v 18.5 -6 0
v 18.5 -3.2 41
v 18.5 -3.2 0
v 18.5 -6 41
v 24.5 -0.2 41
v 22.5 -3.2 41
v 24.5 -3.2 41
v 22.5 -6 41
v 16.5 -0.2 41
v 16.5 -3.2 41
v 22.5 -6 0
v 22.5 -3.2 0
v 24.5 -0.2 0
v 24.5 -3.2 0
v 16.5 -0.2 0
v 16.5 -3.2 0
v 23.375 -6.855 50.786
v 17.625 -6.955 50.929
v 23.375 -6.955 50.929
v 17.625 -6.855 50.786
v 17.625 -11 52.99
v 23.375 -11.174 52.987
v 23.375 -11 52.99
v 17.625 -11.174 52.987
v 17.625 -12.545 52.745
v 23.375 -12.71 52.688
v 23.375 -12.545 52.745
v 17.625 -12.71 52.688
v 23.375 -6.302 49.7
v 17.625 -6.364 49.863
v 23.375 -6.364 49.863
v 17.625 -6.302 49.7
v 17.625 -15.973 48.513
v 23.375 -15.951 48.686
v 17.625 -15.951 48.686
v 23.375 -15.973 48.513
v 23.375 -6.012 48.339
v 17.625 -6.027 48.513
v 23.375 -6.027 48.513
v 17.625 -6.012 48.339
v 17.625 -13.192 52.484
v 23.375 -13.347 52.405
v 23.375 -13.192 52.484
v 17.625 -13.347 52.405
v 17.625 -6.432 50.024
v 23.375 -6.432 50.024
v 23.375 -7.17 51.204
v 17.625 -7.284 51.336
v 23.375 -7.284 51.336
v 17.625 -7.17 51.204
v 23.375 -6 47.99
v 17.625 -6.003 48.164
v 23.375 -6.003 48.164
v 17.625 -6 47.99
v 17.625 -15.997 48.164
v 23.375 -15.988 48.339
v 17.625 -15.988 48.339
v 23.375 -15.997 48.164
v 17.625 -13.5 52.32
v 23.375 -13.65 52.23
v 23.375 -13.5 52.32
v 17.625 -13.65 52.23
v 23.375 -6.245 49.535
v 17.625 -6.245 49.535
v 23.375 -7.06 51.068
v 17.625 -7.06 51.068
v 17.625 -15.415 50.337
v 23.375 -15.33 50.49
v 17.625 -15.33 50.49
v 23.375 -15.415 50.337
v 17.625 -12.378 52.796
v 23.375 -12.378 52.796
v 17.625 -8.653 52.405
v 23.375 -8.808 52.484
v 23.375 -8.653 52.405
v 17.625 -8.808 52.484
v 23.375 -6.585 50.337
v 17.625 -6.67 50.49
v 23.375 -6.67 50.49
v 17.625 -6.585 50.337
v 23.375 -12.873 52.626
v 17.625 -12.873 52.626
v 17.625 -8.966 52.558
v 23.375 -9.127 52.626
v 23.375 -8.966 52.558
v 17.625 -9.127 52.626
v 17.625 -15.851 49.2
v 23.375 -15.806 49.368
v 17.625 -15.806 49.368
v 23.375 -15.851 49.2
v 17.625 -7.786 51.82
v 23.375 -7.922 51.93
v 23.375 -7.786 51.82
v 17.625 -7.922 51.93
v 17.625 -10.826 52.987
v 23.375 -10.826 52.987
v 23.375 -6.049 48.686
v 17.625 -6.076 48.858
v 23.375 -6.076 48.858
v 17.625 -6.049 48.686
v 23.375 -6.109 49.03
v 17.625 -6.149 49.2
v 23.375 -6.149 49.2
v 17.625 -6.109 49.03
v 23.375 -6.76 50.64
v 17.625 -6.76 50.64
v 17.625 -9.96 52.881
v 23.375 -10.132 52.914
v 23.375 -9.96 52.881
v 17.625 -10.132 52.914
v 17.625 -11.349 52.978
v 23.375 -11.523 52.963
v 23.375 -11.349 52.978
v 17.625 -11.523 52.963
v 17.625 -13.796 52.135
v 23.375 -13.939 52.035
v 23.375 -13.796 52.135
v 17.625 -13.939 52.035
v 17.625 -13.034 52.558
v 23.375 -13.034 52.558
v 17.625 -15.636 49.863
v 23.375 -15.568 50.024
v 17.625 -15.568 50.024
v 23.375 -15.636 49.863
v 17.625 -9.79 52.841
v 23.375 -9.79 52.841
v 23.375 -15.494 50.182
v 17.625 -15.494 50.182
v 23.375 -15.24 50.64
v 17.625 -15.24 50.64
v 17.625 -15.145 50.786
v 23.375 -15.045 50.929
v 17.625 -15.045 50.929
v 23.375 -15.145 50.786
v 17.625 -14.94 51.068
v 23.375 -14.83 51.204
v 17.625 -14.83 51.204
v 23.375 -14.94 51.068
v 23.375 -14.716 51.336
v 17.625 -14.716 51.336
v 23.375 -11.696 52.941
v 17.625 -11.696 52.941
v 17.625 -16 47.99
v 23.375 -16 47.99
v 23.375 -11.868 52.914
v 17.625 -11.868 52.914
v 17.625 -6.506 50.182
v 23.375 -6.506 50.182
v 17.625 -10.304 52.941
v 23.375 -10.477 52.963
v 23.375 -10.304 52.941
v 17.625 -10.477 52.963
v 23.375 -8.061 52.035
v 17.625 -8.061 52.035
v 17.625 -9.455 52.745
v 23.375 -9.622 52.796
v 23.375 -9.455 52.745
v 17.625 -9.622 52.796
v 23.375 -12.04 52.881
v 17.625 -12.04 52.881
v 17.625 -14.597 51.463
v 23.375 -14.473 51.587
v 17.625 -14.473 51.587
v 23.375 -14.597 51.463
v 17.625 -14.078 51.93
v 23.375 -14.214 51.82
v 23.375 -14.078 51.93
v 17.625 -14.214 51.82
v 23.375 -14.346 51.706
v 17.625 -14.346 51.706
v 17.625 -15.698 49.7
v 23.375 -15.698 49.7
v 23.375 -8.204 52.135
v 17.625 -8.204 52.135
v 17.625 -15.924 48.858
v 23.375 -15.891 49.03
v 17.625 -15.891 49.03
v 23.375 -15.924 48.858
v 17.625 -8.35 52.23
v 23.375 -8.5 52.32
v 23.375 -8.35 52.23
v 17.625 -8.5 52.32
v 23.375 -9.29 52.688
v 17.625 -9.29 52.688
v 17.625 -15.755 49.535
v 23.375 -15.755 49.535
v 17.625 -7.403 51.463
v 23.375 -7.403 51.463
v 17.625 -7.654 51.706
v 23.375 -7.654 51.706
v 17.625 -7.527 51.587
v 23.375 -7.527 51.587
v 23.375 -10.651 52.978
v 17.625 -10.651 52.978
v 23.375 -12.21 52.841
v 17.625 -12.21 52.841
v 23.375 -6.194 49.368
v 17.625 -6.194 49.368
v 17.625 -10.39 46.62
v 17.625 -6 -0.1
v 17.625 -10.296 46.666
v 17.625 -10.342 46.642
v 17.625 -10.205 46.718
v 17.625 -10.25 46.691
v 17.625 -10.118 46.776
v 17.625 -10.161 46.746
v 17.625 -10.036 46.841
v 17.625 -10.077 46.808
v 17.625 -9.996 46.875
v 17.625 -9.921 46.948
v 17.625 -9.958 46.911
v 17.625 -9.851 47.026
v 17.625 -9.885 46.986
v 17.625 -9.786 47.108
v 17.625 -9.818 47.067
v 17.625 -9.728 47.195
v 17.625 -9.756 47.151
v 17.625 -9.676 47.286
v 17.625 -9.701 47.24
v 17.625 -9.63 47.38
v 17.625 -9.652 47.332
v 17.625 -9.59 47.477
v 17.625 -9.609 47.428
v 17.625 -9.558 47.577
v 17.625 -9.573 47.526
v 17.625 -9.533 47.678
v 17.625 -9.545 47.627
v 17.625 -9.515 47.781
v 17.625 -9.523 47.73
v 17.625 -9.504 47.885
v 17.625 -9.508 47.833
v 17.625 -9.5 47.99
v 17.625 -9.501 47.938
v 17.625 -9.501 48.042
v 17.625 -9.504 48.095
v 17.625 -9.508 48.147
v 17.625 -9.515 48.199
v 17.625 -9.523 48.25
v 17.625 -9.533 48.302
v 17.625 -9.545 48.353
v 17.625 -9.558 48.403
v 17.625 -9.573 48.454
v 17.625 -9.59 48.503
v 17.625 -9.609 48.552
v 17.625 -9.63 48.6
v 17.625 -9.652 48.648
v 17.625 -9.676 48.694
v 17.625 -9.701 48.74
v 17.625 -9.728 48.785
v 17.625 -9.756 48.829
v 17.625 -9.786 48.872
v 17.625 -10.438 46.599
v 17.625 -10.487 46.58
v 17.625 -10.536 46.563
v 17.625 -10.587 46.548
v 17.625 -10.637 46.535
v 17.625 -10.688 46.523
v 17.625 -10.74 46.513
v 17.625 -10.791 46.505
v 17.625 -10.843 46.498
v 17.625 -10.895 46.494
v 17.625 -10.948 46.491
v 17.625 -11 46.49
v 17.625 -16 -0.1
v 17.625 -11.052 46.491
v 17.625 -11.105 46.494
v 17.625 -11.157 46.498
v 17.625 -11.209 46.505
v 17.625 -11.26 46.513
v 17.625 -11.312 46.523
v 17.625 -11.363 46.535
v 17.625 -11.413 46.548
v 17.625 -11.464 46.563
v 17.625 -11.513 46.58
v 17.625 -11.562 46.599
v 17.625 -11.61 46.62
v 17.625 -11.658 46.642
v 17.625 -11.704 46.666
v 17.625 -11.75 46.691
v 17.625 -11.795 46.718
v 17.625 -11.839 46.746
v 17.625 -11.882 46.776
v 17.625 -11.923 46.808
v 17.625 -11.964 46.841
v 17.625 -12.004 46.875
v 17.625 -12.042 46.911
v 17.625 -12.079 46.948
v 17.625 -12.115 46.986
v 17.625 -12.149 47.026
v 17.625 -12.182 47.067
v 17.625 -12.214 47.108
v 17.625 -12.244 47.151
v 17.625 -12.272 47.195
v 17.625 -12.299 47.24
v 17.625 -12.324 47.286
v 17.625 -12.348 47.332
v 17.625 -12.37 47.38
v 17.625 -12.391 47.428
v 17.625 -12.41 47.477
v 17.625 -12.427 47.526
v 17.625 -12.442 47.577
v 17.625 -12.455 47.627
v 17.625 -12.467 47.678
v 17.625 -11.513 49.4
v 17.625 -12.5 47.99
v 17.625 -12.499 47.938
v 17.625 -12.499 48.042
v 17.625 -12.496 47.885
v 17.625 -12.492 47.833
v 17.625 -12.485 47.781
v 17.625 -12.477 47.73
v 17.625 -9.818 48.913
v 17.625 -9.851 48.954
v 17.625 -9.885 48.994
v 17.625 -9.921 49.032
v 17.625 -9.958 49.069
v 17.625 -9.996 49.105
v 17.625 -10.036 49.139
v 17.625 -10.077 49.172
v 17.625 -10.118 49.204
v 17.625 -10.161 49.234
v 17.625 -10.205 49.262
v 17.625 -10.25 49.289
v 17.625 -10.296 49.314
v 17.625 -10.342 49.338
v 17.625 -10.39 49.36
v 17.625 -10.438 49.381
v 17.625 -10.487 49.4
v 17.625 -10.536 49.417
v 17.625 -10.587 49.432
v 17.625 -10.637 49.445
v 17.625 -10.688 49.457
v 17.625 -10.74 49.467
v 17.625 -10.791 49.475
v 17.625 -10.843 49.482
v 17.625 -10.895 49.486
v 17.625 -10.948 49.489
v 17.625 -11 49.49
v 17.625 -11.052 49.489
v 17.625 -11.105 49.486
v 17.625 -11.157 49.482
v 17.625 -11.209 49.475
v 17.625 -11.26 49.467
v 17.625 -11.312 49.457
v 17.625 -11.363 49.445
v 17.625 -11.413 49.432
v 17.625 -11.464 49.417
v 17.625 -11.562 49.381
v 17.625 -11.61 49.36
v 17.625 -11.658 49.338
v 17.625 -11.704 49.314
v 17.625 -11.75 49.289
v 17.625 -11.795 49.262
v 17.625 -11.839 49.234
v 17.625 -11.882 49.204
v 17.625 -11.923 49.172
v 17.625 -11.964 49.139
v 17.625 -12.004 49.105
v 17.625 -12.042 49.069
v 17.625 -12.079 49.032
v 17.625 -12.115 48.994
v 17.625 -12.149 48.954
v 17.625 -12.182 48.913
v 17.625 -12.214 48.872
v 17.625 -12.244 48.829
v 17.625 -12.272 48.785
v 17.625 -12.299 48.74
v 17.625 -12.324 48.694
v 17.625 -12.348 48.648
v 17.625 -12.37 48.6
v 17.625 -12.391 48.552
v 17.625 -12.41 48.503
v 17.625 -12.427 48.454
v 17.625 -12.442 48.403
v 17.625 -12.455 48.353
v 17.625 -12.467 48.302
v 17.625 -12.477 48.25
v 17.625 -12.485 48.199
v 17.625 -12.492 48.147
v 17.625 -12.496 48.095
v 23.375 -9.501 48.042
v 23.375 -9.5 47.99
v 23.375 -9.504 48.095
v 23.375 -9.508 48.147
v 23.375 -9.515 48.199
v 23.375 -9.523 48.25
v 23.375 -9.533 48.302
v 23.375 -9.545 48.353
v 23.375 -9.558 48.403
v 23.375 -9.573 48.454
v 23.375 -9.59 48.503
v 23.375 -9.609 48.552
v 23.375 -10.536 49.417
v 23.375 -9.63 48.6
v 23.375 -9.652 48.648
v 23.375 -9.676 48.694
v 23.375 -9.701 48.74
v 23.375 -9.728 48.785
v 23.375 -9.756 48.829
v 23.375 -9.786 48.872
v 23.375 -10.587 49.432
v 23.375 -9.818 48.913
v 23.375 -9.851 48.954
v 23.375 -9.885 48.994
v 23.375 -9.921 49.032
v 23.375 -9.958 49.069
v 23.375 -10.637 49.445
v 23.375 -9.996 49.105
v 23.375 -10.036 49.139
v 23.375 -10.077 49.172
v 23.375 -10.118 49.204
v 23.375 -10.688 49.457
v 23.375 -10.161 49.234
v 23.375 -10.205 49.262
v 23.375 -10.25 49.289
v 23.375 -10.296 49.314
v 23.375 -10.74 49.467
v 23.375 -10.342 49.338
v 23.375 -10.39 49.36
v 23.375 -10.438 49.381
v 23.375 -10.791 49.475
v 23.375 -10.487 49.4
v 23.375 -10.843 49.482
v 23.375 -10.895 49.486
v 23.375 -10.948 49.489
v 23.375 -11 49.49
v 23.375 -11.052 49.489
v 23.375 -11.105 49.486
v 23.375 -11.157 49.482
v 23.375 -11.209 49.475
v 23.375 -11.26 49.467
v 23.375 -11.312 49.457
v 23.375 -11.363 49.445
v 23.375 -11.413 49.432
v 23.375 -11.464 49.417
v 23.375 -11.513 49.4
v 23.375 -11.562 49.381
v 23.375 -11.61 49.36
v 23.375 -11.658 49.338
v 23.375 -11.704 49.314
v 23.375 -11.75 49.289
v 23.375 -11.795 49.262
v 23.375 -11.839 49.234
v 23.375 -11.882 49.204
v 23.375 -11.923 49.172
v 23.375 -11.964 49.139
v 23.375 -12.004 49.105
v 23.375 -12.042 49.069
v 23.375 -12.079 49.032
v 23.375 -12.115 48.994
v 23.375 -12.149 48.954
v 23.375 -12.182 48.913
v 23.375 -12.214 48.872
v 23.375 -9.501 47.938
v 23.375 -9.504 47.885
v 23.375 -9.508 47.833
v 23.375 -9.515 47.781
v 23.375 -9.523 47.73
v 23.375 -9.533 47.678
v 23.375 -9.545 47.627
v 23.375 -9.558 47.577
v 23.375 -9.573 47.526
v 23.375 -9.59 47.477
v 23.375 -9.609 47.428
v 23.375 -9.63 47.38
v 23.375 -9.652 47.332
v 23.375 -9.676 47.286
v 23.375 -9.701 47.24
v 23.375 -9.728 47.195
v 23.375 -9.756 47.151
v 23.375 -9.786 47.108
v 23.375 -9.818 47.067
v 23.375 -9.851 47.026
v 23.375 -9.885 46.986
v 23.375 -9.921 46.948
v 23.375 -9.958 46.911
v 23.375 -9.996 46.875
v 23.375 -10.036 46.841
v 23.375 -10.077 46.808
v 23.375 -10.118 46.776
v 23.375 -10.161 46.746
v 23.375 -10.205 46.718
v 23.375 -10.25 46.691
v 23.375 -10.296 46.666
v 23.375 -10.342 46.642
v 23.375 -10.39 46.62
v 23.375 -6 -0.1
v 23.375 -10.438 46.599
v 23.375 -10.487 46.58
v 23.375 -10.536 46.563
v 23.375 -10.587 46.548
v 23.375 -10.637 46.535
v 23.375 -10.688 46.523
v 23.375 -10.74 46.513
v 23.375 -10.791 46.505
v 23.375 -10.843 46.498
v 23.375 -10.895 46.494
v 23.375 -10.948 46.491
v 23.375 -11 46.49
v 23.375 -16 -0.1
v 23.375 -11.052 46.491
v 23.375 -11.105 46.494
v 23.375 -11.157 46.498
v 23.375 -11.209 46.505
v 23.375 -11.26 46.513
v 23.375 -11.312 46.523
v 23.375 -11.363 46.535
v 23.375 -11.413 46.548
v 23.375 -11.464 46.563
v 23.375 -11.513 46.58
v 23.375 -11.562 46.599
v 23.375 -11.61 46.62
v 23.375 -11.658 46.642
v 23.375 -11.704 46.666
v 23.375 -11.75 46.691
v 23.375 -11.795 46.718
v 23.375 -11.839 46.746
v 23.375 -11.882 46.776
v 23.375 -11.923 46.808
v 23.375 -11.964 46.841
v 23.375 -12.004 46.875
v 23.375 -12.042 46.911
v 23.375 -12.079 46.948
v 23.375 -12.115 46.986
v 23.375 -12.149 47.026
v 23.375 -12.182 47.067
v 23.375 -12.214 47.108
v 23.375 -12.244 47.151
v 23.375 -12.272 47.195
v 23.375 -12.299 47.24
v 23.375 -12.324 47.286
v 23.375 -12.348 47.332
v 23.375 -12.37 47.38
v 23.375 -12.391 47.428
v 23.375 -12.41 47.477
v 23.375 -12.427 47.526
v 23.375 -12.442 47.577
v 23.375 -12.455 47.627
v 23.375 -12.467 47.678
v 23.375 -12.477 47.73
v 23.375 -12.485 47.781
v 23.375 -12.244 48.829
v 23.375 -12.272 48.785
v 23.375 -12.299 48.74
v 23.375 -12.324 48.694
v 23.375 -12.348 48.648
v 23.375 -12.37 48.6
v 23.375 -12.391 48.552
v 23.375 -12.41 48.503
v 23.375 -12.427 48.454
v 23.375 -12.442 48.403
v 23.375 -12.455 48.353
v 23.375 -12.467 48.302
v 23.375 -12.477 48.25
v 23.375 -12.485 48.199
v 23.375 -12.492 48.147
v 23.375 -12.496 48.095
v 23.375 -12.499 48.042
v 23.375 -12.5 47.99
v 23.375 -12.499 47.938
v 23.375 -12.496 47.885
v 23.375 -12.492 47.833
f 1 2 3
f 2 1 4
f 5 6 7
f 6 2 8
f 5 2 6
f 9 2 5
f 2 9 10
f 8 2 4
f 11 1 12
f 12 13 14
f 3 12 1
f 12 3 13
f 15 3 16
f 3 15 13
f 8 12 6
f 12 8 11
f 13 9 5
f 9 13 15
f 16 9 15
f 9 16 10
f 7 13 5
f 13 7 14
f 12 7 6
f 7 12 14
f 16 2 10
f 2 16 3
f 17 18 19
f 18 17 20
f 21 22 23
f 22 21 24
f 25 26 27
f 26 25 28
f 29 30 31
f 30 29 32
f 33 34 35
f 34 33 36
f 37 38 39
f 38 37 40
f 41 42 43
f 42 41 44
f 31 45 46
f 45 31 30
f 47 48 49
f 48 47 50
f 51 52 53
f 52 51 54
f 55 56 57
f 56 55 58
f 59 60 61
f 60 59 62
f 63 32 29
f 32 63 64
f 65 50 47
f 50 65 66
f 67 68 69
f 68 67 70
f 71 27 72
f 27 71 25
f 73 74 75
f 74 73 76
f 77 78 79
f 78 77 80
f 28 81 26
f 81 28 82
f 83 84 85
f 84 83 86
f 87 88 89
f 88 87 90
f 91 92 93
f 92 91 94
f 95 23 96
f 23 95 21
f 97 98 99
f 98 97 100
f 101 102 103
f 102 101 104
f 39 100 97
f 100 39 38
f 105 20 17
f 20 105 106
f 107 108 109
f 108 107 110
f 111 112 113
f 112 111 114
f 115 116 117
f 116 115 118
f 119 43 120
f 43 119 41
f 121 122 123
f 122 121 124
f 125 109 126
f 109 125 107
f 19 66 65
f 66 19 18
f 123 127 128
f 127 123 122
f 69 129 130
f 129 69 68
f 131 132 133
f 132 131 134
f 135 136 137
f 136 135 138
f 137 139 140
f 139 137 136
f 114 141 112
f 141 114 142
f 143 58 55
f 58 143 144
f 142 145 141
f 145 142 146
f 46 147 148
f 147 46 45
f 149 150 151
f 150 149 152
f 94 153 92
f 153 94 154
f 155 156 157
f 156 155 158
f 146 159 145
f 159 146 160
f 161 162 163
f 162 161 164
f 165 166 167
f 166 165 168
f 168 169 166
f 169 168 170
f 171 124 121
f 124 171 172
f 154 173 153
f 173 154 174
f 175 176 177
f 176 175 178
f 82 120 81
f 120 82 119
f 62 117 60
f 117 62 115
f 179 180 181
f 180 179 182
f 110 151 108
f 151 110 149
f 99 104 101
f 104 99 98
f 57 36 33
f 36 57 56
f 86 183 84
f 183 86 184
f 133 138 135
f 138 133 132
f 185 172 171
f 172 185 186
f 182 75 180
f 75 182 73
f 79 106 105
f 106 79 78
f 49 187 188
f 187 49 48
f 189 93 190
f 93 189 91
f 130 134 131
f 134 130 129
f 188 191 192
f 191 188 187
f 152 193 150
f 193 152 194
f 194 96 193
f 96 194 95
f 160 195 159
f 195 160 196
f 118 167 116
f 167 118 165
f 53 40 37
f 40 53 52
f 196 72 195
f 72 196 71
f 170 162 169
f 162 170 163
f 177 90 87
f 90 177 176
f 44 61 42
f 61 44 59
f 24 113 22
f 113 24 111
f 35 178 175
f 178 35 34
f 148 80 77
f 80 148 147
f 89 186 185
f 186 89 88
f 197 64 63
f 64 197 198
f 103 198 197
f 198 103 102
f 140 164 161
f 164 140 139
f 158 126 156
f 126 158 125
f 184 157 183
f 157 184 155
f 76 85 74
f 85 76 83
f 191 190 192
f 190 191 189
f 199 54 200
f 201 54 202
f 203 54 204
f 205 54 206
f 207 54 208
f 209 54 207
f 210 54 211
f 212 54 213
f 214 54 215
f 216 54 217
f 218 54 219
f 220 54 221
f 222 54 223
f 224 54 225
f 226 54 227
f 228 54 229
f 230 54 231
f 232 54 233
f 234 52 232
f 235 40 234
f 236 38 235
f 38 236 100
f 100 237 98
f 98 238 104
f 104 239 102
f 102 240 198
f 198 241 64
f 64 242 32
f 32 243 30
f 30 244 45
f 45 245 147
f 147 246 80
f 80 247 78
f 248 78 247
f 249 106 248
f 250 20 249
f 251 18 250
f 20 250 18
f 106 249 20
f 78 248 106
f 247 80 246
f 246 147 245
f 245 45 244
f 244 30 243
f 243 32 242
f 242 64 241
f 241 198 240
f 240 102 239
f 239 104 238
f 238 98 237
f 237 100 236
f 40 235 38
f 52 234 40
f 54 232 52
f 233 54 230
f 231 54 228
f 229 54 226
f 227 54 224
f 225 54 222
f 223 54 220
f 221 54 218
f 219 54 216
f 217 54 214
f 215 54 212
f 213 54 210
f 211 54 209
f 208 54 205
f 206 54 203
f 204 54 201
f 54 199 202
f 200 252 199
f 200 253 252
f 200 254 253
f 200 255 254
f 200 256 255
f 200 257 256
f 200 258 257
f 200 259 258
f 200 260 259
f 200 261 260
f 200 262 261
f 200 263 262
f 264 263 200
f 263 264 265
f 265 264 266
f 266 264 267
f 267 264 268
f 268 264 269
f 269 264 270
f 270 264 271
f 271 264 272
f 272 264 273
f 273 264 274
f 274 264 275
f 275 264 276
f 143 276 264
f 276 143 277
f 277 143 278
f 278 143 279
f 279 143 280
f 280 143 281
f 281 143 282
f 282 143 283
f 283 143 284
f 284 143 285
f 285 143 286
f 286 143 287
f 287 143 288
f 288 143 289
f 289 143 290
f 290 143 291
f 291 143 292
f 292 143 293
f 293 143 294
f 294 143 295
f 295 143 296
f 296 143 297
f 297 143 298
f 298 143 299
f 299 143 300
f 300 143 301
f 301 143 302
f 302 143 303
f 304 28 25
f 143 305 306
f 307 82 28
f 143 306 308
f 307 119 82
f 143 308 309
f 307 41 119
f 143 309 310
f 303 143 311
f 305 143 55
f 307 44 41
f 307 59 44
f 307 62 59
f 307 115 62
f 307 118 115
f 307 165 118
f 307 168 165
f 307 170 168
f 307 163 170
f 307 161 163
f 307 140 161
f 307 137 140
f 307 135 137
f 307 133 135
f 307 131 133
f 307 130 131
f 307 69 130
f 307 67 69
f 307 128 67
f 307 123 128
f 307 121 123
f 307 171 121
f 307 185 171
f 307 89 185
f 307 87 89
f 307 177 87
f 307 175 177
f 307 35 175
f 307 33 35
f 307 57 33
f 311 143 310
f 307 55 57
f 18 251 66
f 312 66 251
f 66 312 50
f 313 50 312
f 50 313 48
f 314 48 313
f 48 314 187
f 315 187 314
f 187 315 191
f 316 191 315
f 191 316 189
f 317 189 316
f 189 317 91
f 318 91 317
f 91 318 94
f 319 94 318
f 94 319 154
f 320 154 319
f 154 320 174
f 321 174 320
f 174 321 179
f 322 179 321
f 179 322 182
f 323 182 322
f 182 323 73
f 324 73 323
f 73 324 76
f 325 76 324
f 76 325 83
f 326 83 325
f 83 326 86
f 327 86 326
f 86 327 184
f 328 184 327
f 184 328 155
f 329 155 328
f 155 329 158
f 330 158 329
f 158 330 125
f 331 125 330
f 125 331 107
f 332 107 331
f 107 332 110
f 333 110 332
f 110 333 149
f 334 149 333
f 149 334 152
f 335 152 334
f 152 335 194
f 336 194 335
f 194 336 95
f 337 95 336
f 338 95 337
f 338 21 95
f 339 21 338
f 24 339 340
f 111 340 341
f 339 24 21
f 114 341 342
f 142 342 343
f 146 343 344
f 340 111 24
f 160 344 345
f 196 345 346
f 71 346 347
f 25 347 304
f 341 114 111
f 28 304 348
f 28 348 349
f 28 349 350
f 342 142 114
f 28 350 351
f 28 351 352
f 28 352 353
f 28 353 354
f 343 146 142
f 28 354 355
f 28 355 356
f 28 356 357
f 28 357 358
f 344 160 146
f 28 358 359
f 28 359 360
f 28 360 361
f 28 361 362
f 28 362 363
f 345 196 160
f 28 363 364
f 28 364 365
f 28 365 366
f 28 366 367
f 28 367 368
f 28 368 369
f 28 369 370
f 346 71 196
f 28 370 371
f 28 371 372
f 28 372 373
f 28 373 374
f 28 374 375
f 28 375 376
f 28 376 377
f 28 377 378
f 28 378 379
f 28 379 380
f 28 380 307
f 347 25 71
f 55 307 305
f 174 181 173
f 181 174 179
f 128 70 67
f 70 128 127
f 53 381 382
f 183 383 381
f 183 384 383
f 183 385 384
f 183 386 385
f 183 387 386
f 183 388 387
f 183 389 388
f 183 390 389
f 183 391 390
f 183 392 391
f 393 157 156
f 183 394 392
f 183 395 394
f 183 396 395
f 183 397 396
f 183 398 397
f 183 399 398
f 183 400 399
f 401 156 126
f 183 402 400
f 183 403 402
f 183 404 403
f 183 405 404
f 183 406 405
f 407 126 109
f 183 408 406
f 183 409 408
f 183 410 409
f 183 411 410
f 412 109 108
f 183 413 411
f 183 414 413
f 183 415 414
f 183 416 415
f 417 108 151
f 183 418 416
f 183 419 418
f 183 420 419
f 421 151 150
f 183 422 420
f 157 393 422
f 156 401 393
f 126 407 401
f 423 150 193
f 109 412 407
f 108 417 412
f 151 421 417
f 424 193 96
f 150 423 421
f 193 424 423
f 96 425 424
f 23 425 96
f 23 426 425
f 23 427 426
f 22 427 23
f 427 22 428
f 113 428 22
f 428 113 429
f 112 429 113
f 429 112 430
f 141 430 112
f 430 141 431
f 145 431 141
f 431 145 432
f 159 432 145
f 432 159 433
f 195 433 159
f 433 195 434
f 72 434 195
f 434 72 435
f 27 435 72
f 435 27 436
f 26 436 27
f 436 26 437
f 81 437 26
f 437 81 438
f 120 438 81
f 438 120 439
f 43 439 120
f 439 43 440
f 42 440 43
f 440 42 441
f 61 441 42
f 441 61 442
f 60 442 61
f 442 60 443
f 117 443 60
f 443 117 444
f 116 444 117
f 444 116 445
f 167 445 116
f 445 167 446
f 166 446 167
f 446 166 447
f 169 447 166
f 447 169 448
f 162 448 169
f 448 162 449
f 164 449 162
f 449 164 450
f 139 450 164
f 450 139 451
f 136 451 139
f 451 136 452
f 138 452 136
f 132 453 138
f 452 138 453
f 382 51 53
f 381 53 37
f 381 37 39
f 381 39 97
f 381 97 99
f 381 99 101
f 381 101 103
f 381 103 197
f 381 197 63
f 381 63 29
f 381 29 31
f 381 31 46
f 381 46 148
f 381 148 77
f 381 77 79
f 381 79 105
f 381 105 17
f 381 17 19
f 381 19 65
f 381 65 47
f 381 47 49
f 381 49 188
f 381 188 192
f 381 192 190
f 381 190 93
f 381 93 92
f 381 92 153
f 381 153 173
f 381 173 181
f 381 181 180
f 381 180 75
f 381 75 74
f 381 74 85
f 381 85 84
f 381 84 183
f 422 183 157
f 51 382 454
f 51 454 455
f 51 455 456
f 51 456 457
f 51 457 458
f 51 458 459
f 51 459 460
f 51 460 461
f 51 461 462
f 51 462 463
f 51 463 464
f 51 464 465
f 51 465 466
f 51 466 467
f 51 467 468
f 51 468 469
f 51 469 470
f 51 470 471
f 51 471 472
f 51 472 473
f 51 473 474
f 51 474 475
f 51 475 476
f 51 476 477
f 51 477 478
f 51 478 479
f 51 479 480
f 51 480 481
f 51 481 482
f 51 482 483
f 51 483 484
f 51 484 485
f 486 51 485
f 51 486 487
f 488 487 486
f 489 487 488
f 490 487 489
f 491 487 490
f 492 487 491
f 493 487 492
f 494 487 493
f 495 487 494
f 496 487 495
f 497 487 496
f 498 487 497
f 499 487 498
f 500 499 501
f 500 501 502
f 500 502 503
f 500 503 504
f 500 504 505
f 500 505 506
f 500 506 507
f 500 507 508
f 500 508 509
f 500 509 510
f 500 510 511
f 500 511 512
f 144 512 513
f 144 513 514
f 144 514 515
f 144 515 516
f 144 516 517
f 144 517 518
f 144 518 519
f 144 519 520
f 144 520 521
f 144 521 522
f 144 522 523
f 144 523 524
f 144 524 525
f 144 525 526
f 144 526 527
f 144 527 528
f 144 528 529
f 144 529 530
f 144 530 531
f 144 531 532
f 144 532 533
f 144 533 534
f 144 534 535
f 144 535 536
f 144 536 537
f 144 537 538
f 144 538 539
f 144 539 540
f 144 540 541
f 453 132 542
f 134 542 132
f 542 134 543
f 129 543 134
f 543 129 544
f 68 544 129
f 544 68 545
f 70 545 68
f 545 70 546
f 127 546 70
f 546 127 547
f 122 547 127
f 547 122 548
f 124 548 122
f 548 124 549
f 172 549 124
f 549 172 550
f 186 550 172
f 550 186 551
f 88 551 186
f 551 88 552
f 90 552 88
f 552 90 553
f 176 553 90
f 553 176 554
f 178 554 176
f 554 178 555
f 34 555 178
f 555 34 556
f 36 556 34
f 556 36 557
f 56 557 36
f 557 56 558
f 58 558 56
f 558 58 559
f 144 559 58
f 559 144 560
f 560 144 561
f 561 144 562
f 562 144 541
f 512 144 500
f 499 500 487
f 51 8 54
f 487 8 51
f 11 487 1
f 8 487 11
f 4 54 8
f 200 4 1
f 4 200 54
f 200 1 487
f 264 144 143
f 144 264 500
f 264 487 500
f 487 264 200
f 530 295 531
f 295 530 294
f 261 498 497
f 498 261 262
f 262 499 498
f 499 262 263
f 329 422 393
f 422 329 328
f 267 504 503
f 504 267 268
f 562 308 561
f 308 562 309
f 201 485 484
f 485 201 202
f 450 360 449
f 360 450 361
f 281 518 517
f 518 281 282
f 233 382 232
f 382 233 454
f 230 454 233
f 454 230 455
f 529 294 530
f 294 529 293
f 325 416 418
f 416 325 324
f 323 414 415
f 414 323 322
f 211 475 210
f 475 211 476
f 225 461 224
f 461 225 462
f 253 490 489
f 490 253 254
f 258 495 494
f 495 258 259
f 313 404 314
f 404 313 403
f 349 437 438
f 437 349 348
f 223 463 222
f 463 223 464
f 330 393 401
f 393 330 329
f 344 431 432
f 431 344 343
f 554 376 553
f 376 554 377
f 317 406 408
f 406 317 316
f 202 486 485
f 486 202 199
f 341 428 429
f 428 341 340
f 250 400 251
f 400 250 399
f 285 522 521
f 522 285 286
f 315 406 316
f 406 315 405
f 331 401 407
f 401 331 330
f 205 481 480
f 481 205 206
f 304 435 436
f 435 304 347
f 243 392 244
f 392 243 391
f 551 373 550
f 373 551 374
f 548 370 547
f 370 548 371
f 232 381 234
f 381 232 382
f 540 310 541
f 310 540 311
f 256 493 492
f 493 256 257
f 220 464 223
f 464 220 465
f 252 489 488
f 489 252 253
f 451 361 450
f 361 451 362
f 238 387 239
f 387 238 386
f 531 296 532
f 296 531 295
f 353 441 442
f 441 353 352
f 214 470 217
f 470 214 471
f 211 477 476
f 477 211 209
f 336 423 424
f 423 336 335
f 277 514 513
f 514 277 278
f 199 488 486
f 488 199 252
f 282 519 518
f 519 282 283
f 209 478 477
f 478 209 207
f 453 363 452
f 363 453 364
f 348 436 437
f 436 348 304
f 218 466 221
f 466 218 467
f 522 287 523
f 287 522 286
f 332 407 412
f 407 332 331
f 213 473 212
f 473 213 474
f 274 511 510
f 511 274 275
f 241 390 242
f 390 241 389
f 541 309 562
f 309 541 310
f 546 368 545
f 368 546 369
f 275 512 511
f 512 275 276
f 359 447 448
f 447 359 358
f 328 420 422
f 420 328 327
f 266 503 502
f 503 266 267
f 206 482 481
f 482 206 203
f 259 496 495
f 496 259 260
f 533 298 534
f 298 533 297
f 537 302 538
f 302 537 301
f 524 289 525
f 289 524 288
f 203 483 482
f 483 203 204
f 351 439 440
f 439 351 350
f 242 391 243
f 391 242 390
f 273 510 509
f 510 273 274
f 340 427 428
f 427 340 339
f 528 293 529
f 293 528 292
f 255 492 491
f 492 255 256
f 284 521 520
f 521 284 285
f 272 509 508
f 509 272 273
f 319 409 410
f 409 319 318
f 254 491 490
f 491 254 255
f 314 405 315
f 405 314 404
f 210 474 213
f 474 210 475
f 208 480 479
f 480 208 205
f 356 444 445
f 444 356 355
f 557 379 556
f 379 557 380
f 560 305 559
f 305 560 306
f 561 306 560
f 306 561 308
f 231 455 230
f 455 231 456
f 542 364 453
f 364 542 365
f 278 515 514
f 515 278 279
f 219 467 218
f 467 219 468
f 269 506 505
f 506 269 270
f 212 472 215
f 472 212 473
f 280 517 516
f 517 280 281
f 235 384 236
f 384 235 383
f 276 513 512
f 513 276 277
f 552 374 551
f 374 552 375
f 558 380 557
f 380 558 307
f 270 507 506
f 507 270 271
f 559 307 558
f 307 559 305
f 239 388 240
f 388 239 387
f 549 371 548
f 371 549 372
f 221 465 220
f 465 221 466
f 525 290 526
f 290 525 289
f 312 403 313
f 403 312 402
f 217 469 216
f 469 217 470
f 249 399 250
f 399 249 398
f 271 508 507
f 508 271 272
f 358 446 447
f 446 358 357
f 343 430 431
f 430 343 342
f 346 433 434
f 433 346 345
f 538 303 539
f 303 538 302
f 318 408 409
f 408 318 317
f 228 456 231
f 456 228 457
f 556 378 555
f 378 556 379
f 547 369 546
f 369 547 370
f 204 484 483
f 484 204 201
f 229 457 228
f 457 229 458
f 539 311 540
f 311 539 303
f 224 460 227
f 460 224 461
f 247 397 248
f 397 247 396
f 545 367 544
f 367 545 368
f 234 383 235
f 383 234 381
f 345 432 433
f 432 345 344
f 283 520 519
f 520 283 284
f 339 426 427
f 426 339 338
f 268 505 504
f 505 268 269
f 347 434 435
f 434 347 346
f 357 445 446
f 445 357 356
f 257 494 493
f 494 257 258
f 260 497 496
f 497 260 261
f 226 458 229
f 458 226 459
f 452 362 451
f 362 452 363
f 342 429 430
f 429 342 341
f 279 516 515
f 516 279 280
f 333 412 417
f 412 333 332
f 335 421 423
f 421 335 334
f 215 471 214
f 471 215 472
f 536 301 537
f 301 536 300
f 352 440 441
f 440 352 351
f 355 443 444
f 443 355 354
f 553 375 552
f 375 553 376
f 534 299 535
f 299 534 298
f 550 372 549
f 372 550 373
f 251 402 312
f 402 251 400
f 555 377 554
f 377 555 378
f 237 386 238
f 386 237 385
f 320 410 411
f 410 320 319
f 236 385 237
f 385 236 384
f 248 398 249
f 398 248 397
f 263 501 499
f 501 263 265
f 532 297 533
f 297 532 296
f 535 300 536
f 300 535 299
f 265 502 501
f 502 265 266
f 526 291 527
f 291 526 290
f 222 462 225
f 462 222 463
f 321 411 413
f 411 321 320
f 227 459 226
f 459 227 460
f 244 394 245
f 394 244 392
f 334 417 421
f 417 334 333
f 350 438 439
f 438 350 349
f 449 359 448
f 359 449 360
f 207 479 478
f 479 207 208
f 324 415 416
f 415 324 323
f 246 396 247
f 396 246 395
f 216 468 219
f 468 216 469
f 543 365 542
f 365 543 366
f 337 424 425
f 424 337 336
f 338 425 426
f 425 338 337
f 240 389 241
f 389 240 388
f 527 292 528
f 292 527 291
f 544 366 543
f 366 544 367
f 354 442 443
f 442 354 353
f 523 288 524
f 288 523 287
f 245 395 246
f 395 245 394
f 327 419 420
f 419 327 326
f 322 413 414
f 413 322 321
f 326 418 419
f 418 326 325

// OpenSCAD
// file: channel.scad
module channel(channel_padding = 0, rot = 0) {
  include <config.scad>
  w = width + (channel_padding * 2);
  crw = channel_rib_width + (channel_padding * 2);
  crd = channel_rib_depth + (channel_padding * 2);
  cw = channel_width;
  cd = channel_depth + (channel_padding * 2);

  translate([0, -1 * (crd + 0.1), 0]) {
    rotate([0, 0, rot]) {
      cube([crw, crd + 0.2, height]);
      translate([-1 * (cw / 4), -1 * (crd - 0.1), 0]) {
        cube([cw, cd - crd, height]);
      }
    }
  }
}
// file: config.scad
wall_thickness = 2;
padding = 0.5;
depth = 10;
hole_diam = 3.5;

hole_inset = wall_thickness + padding + 2 + (hole_diam / 2);

width = 36 + (padding * 2) + (wall_thickness * 2);
height = 36 + (padding * 2) + (wall_thickness * 2);

channel_width = 8;
channel_rib_width = 4;
channel_depth = 6;
channel_rib_depth = 3;

backplate_block_width = channel_width * 1.5;
backplate_block_depth = channel_depth;

insert_diam = 2.84;
// main file
include <config.scad>
use <channel.scad>

module mounting_bar() {
  union() {
    translate([(width / 2) + (channel_width / 4), 0, 0]) {
      channel(rot=180);
    }
    // rounded end
    translate([(width / 2) - (5.75 / 2), -1 * (channel_depth + channel_rib_depth + 2), 6.99 + height]) {
      rotate([0, 90, 0]) {
        difference() {
          union() {
            cylinder(h=5.75, d=10, $fn=180);
            translate([0, -5, 0]) {
              cube([7, 10, 5.75]);
            }
            translate([6.99, -5, 0]) {
              cube([height + 0.1, 10, 5.75]);
            }
          }
          translate([0, 0, -1]) {
            cylinder(h=9, d=3, $fn=180);
          }
        }
      }
    }
  }
}

mounting_bar();
